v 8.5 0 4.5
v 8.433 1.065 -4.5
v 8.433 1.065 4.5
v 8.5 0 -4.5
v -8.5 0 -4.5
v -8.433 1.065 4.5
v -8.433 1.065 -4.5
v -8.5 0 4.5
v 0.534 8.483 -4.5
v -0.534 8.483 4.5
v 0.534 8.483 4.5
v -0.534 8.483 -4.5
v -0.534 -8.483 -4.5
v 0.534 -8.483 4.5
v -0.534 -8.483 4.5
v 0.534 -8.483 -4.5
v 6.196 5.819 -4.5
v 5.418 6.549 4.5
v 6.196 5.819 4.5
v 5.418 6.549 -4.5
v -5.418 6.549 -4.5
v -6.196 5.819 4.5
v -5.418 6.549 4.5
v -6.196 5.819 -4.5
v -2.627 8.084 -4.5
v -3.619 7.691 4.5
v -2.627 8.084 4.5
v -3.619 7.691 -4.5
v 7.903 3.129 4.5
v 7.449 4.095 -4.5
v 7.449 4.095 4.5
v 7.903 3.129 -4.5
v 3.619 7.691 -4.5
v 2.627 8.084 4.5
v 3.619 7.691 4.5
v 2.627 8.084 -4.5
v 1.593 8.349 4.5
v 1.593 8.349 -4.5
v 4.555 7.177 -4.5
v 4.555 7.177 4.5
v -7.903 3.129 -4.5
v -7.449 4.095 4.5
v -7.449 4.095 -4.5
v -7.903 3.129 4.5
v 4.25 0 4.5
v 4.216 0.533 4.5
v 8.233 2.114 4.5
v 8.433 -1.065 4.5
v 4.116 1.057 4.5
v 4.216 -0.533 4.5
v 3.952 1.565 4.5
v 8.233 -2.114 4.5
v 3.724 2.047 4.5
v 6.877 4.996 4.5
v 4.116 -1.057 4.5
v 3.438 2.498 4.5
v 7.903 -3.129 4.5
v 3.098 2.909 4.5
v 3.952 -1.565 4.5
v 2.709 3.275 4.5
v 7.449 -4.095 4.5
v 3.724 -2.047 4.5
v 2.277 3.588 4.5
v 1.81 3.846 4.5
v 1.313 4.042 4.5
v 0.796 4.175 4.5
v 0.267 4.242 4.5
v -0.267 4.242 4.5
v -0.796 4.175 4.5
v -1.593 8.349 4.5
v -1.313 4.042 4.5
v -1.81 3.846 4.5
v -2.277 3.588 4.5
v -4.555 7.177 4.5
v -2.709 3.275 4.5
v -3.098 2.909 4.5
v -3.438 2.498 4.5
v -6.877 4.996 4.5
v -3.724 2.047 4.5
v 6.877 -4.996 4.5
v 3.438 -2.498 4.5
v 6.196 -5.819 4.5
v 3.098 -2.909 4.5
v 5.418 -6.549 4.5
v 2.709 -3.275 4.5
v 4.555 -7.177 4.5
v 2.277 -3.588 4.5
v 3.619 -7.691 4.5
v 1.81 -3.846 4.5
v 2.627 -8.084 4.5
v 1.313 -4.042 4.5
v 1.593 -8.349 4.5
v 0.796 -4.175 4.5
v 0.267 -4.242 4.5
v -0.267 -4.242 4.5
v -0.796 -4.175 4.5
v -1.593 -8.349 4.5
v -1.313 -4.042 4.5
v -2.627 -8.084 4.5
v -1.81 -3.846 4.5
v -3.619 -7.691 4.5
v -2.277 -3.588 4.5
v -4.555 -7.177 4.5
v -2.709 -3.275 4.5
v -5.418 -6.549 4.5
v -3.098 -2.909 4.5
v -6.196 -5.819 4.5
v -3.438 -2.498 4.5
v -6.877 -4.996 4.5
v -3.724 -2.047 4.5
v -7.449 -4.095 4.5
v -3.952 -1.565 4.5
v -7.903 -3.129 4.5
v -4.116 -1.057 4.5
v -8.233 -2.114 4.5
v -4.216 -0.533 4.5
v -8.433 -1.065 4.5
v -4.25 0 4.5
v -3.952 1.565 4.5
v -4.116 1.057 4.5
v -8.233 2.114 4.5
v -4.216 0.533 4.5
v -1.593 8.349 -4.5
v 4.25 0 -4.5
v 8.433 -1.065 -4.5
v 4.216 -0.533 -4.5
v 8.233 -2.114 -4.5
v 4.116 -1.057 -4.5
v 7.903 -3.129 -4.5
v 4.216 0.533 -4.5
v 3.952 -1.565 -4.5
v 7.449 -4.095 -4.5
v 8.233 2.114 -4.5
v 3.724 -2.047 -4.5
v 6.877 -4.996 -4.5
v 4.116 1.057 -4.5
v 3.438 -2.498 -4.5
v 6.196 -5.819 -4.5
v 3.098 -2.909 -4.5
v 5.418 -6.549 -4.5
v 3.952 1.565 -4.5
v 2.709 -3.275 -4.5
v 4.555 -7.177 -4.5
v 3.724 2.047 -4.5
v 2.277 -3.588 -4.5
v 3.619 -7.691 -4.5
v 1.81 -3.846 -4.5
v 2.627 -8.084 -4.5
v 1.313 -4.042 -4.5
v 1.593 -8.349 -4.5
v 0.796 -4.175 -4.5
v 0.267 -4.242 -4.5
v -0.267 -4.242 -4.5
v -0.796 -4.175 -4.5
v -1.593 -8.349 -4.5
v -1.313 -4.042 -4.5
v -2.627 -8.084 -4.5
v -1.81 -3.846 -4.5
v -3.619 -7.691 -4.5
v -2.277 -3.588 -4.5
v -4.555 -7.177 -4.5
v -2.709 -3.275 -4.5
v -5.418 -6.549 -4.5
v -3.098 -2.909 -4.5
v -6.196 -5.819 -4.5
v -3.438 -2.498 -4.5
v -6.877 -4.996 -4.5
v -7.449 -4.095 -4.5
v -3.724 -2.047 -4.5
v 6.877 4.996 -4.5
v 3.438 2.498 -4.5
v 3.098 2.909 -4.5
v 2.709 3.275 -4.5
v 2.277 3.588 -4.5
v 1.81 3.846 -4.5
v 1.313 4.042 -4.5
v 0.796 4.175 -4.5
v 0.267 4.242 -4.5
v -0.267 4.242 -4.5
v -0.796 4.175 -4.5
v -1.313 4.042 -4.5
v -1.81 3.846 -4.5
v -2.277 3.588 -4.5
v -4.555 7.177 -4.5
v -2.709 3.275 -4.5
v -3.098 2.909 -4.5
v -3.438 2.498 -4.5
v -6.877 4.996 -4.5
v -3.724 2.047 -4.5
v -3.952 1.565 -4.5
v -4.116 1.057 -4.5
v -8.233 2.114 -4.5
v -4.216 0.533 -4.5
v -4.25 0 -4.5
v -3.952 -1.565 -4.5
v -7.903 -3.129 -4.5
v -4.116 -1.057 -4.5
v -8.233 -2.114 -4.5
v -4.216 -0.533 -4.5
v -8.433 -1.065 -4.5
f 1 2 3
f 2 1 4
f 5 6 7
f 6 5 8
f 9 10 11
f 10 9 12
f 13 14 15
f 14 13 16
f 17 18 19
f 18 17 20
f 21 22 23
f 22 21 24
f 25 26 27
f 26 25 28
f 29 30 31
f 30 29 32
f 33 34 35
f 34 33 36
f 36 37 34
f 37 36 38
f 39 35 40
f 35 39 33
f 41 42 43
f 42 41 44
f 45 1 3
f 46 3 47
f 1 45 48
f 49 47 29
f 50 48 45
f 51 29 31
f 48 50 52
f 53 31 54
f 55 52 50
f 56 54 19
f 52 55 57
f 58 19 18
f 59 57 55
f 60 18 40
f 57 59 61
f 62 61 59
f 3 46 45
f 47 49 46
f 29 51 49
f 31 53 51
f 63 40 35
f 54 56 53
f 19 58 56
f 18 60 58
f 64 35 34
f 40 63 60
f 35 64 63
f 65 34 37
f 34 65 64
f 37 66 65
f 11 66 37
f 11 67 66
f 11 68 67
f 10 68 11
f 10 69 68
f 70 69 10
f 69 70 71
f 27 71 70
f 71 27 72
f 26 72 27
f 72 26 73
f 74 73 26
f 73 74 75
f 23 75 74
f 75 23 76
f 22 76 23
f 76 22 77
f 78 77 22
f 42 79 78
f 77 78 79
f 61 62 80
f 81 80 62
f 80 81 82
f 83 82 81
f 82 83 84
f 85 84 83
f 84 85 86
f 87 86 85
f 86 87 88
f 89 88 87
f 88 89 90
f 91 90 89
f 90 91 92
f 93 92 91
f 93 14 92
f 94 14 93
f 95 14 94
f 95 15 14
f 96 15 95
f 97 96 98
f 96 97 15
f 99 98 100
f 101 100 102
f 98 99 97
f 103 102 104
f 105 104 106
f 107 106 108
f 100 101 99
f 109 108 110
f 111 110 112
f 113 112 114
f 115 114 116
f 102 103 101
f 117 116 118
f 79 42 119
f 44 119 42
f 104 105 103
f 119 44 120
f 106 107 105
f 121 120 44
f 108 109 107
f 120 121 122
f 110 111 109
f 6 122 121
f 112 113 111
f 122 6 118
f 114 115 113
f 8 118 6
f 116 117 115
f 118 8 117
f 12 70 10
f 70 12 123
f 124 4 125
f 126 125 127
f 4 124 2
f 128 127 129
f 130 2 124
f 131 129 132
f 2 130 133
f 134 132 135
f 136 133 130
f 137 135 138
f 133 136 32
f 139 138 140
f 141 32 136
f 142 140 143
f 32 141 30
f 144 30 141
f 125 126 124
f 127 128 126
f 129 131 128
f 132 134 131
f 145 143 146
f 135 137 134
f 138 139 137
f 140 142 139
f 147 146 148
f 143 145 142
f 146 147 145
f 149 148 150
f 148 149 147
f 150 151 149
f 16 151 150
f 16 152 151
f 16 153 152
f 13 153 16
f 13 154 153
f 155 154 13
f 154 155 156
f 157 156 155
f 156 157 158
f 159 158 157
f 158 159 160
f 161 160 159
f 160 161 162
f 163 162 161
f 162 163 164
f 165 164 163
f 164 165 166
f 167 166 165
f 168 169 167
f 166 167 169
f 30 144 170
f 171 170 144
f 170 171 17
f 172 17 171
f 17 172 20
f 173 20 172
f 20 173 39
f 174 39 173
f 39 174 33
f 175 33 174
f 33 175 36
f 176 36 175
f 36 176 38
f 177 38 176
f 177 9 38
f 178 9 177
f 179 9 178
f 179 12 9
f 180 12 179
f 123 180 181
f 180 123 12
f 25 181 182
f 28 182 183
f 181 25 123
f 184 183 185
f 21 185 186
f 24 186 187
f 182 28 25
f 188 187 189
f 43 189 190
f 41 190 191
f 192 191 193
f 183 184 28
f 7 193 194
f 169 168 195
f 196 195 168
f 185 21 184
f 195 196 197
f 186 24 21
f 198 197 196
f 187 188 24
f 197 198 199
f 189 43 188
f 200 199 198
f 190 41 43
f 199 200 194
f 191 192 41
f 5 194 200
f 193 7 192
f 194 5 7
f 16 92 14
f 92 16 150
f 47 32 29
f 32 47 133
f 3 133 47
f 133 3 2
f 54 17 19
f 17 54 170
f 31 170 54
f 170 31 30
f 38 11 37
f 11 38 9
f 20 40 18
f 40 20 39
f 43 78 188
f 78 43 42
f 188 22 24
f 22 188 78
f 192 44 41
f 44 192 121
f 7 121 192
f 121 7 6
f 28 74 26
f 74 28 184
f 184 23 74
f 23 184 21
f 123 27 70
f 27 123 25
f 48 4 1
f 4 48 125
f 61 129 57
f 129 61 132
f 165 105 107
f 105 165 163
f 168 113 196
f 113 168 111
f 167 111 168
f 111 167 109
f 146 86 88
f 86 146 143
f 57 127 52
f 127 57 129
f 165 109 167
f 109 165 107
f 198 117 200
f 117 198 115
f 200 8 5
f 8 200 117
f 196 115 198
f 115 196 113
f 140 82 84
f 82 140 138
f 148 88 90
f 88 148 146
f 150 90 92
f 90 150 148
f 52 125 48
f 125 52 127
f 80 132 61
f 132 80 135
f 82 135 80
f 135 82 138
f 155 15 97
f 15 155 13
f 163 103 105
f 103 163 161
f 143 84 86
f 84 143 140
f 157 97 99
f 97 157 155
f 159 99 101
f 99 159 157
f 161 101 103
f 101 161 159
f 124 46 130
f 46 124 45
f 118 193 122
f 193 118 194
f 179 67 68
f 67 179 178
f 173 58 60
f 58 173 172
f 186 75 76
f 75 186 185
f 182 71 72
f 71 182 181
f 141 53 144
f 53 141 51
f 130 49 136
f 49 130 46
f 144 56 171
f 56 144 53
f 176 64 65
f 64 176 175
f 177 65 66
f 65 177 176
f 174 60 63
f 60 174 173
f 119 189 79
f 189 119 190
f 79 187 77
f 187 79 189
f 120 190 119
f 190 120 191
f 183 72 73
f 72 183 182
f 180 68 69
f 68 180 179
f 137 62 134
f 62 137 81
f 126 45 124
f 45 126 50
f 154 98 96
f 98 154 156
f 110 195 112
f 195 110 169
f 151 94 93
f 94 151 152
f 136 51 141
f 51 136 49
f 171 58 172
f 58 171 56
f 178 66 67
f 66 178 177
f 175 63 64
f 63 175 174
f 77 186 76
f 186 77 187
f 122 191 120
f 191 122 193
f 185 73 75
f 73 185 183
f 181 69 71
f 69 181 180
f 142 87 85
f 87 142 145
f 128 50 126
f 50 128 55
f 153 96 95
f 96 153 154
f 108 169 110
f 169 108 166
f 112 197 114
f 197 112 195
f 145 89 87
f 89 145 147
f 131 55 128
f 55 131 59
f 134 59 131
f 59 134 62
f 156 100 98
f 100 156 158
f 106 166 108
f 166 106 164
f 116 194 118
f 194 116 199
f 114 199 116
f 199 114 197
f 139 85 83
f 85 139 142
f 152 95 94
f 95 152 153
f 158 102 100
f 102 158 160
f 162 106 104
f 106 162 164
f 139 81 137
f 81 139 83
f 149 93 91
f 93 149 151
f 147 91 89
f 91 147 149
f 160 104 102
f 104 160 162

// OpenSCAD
$fn = 50;


difference() {
	union() {
		translate(v = [0, 0, -4.5000000000]) {
			cylinder(h = 9, r = 8.5000000000);
		}
	}
	union() {
		translate(v = [0, 0, -100.0000000000]) {
			cylinder(h = 200, r = 4.2500000000);
		}
	}
}
